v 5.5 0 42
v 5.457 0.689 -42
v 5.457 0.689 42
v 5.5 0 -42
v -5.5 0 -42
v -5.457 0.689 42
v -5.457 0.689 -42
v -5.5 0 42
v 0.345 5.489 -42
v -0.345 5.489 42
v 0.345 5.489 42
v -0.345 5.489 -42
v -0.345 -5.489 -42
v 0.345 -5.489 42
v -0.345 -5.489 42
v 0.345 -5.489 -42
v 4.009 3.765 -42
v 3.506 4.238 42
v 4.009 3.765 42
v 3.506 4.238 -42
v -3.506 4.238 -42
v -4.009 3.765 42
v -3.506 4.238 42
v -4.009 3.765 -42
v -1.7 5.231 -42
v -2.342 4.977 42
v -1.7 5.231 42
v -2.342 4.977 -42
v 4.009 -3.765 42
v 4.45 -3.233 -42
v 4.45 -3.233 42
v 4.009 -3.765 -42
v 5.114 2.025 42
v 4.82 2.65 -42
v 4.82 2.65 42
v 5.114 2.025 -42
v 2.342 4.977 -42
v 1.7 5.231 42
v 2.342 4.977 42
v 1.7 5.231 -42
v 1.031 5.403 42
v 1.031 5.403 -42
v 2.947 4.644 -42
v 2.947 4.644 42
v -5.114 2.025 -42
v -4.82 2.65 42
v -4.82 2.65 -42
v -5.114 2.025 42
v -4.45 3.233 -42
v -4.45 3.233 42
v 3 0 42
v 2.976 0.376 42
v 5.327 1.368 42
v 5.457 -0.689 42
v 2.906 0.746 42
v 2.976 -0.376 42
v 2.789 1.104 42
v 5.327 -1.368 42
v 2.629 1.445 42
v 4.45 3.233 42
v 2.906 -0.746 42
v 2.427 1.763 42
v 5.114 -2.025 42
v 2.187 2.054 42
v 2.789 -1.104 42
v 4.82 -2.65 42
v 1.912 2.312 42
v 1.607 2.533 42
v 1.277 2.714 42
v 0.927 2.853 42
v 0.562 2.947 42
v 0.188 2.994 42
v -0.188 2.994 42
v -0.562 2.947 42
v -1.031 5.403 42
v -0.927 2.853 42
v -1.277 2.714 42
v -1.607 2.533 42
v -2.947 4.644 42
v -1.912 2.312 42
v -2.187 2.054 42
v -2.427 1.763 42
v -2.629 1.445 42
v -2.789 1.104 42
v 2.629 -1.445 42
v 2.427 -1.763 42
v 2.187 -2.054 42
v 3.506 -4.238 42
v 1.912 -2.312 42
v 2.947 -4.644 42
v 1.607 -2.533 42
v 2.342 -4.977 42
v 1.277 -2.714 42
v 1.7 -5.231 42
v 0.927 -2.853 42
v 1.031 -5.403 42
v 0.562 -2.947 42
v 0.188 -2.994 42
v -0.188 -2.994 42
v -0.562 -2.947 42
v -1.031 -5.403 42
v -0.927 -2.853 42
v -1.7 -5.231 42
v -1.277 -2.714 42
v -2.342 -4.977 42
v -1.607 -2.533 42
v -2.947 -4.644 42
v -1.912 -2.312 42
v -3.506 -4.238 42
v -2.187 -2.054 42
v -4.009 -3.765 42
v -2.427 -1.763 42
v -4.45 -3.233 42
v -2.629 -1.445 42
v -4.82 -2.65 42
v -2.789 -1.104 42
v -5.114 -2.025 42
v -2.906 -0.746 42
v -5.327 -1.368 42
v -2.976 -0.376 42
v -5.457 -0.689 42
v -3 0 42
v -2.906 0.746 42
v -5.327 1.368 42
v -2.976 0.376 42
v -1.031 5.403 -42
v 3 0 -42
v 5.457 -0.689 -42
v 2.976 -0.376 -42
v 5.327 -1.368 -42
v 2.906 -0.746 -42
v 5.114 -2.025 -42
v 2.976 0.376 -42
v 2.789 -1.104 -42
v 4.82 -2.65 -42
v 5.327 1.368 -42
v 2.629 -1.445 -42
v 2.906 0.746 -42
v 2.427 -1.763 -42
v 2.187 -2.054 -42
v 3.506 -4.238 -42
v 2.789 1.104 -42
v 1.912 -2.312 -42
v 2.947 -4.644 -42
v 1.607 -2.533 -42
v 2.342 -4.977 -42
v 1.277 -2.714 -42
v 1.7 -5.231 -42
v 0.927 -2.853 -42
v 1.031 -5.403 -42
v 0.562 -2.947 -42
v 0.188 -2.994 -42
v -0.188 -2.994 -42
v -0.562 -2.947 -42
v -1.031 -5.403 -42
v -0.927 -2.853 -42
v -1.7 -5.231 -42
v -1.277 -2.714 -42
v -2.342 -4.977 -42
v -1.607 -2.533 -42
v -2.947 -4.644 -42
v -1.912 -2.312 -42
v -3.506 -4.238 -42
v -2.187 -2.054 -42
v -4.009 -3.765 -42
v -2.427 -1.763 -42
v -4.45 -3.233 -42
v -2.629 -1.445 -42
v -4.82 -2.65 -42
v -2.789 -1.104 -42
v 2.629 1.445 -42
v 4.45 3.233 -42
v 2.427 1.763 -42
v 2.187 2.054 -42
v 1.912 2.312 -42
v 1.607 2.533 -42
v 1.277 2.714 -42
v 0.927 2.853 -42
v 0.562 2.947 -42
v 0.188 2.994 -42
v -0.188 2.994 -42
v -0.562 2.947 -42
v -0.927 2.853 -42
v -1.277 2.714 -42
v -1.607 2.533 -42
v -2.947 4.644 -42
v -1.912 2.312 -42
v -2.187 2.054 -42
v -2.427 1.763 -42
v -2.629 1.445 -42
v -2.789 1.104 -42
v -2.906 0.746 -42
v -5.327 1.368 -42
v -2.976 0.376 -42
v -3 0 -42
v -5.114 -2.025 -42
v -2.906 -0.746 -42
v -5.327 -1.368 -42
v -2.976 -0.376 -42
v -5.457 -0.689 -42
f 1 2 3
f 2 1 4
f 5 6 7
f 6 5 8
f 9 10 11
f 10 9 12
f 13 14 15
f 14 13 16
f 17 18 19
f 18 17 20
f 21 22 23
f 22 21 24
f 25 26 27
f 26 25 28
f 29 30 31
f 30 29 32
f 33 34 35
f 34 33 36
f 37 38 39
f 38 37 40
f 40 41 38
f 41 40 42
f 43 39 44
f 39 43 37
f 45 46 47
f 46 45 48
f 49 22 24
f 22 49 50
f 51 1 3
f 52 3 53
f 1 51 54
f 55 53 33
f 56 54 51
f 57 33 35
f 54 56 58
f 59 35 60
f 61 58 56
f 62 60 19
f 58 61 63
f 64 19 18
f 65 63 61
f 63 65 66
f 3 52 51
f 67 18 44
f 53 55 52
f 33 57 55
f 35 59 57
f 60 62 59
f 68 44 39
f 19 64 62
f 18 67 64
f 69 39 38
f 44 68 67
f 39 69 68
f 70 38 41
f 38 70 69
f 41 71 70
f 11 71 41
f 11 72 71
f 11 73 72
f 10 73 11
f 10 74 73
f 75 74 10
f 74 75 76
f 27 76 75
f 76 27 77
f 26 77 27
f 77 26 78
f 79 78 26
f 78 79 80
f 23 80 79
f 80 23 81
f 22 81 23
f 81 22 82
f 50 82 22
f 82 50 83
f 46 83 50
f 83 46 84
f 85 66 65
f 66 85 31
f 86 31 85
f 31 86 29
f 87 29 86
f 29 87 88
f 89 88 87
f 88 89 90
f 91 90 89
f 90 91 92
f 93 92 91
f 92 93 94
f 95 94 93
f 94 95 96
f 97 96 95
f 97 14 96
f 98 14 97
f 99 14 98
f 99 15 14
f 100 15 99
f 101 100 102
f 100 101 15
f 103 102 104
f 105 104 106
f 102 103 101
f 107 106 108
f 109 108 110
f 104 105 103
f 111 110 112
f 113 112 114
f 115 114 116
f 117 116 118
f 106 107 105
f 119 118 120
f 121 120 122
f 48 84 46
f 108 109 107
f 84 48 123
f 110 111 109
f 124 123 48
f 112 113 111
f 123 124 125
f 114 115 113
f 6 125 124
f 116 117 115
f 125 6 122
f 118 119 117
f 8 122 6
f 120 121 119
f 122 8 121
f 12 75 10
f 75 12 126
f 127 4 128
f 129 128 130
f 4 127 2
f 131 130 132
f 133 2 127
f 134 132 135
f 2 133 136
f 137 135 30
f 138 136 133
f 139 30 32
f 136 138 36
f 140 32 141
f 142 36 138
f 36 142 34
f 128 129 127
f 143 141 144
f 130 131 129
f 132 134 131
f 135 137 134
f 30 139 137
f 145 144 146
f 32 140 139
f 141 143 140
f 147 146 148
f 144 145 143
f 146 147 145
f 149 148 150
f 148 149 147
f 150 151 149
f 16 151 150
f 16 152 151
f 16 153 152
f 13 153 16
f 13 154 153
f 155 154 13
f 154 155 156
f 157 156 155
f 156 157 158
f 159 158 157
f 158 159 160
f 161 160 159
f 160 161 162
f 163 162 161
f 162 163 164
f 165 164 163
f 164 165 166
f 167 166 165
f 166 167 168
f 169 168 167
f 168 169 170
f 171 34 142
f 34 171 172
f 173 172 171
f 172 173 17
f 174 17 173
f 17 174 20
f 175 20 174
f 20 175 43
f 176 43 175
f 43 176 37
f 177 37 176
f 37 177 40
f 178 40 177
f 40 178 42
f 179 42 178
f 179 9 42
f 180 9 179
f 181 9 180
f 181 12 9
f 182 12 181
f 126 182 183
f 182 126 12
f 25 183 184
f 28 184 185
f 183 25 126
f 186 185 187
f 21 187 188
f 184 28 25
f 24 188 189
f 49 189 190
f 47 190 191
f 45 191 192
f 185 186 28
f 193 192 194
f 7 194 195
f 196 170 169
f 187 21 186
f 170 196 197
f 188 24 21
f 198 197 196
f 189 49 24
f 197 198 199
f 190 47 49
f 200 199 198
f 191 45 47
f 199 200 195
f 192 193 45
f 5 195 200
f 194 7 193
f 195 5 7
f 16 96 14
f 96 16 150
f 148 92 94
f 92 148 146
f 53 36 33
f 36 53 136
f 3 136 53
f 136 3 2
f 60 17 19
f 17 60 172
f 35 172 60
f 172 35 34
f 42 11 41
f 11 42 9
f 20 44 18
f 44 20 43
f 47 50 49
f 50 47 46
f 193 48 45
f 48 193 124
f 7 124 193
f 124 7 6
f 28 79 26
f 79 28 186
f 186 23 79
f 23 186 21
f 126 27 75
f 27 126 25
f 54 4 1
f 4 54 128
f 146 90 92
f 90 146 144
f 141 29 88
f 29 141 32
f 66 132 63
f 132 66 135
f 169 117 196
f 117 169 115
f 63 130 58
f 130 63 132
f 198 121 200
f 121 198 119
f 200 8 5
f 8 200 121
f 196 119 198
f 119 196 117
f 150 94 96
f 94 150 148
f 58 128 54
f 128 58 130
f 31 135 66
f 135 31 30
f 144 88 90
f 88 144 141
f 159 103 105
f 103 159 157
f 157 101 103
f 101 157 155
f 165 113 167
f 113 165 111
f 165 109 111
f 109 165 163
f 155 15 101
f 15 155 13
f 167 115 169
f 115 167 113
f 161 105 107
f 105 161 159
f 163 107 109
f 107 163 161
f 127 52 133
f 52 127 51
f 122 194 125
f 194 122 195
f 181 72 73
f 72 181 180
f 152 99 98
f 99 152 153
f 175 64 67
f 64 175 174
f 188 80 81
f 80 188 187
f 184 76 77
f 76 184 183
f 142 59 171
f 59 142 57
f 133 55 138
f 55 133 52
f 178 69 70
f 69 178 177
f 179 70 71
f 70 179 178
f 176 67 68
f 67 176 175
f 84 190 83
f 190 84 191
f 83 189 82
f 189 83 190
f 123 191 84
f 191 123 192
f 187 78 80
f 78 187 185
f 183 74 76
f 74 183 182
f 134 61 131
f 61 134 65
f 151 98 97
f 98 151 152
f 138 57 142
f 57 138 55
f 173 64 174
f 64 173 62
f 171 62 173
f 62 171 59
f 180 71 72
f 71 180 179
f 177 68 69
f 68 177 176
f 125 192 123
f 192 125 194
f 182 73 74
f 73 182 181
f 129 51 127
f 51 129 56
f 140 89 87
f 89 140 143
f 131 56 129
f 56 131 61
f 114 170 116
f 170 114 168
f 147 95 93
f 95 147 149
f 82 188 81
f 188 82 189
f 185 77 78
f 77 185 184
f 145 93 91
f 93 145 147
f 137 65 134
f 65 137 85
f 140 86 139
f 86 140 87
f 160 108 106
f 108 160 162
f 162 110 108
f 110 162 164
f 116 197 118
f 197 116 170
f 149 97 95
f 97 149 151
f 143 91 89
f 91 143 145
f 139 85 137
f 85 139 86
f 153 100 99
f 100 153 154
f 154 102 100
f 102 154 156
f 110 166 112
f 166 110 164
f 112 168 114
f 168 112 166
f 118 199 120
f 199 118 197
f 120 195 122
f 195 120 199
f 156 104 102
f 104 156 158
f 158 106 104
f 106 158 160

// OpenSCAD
$fn = 50;


difference() {
	union() {
		translate(v = [0, 0, -42.0000000000]) {
			cylinder(h = 84, r = 5.5000000000);
		}
	}
	union() {
		translate(v = [0, 0, -100.0000000000]) {
			cylinder(h = 200, r = 3.0000000000);
		}
	}
}
